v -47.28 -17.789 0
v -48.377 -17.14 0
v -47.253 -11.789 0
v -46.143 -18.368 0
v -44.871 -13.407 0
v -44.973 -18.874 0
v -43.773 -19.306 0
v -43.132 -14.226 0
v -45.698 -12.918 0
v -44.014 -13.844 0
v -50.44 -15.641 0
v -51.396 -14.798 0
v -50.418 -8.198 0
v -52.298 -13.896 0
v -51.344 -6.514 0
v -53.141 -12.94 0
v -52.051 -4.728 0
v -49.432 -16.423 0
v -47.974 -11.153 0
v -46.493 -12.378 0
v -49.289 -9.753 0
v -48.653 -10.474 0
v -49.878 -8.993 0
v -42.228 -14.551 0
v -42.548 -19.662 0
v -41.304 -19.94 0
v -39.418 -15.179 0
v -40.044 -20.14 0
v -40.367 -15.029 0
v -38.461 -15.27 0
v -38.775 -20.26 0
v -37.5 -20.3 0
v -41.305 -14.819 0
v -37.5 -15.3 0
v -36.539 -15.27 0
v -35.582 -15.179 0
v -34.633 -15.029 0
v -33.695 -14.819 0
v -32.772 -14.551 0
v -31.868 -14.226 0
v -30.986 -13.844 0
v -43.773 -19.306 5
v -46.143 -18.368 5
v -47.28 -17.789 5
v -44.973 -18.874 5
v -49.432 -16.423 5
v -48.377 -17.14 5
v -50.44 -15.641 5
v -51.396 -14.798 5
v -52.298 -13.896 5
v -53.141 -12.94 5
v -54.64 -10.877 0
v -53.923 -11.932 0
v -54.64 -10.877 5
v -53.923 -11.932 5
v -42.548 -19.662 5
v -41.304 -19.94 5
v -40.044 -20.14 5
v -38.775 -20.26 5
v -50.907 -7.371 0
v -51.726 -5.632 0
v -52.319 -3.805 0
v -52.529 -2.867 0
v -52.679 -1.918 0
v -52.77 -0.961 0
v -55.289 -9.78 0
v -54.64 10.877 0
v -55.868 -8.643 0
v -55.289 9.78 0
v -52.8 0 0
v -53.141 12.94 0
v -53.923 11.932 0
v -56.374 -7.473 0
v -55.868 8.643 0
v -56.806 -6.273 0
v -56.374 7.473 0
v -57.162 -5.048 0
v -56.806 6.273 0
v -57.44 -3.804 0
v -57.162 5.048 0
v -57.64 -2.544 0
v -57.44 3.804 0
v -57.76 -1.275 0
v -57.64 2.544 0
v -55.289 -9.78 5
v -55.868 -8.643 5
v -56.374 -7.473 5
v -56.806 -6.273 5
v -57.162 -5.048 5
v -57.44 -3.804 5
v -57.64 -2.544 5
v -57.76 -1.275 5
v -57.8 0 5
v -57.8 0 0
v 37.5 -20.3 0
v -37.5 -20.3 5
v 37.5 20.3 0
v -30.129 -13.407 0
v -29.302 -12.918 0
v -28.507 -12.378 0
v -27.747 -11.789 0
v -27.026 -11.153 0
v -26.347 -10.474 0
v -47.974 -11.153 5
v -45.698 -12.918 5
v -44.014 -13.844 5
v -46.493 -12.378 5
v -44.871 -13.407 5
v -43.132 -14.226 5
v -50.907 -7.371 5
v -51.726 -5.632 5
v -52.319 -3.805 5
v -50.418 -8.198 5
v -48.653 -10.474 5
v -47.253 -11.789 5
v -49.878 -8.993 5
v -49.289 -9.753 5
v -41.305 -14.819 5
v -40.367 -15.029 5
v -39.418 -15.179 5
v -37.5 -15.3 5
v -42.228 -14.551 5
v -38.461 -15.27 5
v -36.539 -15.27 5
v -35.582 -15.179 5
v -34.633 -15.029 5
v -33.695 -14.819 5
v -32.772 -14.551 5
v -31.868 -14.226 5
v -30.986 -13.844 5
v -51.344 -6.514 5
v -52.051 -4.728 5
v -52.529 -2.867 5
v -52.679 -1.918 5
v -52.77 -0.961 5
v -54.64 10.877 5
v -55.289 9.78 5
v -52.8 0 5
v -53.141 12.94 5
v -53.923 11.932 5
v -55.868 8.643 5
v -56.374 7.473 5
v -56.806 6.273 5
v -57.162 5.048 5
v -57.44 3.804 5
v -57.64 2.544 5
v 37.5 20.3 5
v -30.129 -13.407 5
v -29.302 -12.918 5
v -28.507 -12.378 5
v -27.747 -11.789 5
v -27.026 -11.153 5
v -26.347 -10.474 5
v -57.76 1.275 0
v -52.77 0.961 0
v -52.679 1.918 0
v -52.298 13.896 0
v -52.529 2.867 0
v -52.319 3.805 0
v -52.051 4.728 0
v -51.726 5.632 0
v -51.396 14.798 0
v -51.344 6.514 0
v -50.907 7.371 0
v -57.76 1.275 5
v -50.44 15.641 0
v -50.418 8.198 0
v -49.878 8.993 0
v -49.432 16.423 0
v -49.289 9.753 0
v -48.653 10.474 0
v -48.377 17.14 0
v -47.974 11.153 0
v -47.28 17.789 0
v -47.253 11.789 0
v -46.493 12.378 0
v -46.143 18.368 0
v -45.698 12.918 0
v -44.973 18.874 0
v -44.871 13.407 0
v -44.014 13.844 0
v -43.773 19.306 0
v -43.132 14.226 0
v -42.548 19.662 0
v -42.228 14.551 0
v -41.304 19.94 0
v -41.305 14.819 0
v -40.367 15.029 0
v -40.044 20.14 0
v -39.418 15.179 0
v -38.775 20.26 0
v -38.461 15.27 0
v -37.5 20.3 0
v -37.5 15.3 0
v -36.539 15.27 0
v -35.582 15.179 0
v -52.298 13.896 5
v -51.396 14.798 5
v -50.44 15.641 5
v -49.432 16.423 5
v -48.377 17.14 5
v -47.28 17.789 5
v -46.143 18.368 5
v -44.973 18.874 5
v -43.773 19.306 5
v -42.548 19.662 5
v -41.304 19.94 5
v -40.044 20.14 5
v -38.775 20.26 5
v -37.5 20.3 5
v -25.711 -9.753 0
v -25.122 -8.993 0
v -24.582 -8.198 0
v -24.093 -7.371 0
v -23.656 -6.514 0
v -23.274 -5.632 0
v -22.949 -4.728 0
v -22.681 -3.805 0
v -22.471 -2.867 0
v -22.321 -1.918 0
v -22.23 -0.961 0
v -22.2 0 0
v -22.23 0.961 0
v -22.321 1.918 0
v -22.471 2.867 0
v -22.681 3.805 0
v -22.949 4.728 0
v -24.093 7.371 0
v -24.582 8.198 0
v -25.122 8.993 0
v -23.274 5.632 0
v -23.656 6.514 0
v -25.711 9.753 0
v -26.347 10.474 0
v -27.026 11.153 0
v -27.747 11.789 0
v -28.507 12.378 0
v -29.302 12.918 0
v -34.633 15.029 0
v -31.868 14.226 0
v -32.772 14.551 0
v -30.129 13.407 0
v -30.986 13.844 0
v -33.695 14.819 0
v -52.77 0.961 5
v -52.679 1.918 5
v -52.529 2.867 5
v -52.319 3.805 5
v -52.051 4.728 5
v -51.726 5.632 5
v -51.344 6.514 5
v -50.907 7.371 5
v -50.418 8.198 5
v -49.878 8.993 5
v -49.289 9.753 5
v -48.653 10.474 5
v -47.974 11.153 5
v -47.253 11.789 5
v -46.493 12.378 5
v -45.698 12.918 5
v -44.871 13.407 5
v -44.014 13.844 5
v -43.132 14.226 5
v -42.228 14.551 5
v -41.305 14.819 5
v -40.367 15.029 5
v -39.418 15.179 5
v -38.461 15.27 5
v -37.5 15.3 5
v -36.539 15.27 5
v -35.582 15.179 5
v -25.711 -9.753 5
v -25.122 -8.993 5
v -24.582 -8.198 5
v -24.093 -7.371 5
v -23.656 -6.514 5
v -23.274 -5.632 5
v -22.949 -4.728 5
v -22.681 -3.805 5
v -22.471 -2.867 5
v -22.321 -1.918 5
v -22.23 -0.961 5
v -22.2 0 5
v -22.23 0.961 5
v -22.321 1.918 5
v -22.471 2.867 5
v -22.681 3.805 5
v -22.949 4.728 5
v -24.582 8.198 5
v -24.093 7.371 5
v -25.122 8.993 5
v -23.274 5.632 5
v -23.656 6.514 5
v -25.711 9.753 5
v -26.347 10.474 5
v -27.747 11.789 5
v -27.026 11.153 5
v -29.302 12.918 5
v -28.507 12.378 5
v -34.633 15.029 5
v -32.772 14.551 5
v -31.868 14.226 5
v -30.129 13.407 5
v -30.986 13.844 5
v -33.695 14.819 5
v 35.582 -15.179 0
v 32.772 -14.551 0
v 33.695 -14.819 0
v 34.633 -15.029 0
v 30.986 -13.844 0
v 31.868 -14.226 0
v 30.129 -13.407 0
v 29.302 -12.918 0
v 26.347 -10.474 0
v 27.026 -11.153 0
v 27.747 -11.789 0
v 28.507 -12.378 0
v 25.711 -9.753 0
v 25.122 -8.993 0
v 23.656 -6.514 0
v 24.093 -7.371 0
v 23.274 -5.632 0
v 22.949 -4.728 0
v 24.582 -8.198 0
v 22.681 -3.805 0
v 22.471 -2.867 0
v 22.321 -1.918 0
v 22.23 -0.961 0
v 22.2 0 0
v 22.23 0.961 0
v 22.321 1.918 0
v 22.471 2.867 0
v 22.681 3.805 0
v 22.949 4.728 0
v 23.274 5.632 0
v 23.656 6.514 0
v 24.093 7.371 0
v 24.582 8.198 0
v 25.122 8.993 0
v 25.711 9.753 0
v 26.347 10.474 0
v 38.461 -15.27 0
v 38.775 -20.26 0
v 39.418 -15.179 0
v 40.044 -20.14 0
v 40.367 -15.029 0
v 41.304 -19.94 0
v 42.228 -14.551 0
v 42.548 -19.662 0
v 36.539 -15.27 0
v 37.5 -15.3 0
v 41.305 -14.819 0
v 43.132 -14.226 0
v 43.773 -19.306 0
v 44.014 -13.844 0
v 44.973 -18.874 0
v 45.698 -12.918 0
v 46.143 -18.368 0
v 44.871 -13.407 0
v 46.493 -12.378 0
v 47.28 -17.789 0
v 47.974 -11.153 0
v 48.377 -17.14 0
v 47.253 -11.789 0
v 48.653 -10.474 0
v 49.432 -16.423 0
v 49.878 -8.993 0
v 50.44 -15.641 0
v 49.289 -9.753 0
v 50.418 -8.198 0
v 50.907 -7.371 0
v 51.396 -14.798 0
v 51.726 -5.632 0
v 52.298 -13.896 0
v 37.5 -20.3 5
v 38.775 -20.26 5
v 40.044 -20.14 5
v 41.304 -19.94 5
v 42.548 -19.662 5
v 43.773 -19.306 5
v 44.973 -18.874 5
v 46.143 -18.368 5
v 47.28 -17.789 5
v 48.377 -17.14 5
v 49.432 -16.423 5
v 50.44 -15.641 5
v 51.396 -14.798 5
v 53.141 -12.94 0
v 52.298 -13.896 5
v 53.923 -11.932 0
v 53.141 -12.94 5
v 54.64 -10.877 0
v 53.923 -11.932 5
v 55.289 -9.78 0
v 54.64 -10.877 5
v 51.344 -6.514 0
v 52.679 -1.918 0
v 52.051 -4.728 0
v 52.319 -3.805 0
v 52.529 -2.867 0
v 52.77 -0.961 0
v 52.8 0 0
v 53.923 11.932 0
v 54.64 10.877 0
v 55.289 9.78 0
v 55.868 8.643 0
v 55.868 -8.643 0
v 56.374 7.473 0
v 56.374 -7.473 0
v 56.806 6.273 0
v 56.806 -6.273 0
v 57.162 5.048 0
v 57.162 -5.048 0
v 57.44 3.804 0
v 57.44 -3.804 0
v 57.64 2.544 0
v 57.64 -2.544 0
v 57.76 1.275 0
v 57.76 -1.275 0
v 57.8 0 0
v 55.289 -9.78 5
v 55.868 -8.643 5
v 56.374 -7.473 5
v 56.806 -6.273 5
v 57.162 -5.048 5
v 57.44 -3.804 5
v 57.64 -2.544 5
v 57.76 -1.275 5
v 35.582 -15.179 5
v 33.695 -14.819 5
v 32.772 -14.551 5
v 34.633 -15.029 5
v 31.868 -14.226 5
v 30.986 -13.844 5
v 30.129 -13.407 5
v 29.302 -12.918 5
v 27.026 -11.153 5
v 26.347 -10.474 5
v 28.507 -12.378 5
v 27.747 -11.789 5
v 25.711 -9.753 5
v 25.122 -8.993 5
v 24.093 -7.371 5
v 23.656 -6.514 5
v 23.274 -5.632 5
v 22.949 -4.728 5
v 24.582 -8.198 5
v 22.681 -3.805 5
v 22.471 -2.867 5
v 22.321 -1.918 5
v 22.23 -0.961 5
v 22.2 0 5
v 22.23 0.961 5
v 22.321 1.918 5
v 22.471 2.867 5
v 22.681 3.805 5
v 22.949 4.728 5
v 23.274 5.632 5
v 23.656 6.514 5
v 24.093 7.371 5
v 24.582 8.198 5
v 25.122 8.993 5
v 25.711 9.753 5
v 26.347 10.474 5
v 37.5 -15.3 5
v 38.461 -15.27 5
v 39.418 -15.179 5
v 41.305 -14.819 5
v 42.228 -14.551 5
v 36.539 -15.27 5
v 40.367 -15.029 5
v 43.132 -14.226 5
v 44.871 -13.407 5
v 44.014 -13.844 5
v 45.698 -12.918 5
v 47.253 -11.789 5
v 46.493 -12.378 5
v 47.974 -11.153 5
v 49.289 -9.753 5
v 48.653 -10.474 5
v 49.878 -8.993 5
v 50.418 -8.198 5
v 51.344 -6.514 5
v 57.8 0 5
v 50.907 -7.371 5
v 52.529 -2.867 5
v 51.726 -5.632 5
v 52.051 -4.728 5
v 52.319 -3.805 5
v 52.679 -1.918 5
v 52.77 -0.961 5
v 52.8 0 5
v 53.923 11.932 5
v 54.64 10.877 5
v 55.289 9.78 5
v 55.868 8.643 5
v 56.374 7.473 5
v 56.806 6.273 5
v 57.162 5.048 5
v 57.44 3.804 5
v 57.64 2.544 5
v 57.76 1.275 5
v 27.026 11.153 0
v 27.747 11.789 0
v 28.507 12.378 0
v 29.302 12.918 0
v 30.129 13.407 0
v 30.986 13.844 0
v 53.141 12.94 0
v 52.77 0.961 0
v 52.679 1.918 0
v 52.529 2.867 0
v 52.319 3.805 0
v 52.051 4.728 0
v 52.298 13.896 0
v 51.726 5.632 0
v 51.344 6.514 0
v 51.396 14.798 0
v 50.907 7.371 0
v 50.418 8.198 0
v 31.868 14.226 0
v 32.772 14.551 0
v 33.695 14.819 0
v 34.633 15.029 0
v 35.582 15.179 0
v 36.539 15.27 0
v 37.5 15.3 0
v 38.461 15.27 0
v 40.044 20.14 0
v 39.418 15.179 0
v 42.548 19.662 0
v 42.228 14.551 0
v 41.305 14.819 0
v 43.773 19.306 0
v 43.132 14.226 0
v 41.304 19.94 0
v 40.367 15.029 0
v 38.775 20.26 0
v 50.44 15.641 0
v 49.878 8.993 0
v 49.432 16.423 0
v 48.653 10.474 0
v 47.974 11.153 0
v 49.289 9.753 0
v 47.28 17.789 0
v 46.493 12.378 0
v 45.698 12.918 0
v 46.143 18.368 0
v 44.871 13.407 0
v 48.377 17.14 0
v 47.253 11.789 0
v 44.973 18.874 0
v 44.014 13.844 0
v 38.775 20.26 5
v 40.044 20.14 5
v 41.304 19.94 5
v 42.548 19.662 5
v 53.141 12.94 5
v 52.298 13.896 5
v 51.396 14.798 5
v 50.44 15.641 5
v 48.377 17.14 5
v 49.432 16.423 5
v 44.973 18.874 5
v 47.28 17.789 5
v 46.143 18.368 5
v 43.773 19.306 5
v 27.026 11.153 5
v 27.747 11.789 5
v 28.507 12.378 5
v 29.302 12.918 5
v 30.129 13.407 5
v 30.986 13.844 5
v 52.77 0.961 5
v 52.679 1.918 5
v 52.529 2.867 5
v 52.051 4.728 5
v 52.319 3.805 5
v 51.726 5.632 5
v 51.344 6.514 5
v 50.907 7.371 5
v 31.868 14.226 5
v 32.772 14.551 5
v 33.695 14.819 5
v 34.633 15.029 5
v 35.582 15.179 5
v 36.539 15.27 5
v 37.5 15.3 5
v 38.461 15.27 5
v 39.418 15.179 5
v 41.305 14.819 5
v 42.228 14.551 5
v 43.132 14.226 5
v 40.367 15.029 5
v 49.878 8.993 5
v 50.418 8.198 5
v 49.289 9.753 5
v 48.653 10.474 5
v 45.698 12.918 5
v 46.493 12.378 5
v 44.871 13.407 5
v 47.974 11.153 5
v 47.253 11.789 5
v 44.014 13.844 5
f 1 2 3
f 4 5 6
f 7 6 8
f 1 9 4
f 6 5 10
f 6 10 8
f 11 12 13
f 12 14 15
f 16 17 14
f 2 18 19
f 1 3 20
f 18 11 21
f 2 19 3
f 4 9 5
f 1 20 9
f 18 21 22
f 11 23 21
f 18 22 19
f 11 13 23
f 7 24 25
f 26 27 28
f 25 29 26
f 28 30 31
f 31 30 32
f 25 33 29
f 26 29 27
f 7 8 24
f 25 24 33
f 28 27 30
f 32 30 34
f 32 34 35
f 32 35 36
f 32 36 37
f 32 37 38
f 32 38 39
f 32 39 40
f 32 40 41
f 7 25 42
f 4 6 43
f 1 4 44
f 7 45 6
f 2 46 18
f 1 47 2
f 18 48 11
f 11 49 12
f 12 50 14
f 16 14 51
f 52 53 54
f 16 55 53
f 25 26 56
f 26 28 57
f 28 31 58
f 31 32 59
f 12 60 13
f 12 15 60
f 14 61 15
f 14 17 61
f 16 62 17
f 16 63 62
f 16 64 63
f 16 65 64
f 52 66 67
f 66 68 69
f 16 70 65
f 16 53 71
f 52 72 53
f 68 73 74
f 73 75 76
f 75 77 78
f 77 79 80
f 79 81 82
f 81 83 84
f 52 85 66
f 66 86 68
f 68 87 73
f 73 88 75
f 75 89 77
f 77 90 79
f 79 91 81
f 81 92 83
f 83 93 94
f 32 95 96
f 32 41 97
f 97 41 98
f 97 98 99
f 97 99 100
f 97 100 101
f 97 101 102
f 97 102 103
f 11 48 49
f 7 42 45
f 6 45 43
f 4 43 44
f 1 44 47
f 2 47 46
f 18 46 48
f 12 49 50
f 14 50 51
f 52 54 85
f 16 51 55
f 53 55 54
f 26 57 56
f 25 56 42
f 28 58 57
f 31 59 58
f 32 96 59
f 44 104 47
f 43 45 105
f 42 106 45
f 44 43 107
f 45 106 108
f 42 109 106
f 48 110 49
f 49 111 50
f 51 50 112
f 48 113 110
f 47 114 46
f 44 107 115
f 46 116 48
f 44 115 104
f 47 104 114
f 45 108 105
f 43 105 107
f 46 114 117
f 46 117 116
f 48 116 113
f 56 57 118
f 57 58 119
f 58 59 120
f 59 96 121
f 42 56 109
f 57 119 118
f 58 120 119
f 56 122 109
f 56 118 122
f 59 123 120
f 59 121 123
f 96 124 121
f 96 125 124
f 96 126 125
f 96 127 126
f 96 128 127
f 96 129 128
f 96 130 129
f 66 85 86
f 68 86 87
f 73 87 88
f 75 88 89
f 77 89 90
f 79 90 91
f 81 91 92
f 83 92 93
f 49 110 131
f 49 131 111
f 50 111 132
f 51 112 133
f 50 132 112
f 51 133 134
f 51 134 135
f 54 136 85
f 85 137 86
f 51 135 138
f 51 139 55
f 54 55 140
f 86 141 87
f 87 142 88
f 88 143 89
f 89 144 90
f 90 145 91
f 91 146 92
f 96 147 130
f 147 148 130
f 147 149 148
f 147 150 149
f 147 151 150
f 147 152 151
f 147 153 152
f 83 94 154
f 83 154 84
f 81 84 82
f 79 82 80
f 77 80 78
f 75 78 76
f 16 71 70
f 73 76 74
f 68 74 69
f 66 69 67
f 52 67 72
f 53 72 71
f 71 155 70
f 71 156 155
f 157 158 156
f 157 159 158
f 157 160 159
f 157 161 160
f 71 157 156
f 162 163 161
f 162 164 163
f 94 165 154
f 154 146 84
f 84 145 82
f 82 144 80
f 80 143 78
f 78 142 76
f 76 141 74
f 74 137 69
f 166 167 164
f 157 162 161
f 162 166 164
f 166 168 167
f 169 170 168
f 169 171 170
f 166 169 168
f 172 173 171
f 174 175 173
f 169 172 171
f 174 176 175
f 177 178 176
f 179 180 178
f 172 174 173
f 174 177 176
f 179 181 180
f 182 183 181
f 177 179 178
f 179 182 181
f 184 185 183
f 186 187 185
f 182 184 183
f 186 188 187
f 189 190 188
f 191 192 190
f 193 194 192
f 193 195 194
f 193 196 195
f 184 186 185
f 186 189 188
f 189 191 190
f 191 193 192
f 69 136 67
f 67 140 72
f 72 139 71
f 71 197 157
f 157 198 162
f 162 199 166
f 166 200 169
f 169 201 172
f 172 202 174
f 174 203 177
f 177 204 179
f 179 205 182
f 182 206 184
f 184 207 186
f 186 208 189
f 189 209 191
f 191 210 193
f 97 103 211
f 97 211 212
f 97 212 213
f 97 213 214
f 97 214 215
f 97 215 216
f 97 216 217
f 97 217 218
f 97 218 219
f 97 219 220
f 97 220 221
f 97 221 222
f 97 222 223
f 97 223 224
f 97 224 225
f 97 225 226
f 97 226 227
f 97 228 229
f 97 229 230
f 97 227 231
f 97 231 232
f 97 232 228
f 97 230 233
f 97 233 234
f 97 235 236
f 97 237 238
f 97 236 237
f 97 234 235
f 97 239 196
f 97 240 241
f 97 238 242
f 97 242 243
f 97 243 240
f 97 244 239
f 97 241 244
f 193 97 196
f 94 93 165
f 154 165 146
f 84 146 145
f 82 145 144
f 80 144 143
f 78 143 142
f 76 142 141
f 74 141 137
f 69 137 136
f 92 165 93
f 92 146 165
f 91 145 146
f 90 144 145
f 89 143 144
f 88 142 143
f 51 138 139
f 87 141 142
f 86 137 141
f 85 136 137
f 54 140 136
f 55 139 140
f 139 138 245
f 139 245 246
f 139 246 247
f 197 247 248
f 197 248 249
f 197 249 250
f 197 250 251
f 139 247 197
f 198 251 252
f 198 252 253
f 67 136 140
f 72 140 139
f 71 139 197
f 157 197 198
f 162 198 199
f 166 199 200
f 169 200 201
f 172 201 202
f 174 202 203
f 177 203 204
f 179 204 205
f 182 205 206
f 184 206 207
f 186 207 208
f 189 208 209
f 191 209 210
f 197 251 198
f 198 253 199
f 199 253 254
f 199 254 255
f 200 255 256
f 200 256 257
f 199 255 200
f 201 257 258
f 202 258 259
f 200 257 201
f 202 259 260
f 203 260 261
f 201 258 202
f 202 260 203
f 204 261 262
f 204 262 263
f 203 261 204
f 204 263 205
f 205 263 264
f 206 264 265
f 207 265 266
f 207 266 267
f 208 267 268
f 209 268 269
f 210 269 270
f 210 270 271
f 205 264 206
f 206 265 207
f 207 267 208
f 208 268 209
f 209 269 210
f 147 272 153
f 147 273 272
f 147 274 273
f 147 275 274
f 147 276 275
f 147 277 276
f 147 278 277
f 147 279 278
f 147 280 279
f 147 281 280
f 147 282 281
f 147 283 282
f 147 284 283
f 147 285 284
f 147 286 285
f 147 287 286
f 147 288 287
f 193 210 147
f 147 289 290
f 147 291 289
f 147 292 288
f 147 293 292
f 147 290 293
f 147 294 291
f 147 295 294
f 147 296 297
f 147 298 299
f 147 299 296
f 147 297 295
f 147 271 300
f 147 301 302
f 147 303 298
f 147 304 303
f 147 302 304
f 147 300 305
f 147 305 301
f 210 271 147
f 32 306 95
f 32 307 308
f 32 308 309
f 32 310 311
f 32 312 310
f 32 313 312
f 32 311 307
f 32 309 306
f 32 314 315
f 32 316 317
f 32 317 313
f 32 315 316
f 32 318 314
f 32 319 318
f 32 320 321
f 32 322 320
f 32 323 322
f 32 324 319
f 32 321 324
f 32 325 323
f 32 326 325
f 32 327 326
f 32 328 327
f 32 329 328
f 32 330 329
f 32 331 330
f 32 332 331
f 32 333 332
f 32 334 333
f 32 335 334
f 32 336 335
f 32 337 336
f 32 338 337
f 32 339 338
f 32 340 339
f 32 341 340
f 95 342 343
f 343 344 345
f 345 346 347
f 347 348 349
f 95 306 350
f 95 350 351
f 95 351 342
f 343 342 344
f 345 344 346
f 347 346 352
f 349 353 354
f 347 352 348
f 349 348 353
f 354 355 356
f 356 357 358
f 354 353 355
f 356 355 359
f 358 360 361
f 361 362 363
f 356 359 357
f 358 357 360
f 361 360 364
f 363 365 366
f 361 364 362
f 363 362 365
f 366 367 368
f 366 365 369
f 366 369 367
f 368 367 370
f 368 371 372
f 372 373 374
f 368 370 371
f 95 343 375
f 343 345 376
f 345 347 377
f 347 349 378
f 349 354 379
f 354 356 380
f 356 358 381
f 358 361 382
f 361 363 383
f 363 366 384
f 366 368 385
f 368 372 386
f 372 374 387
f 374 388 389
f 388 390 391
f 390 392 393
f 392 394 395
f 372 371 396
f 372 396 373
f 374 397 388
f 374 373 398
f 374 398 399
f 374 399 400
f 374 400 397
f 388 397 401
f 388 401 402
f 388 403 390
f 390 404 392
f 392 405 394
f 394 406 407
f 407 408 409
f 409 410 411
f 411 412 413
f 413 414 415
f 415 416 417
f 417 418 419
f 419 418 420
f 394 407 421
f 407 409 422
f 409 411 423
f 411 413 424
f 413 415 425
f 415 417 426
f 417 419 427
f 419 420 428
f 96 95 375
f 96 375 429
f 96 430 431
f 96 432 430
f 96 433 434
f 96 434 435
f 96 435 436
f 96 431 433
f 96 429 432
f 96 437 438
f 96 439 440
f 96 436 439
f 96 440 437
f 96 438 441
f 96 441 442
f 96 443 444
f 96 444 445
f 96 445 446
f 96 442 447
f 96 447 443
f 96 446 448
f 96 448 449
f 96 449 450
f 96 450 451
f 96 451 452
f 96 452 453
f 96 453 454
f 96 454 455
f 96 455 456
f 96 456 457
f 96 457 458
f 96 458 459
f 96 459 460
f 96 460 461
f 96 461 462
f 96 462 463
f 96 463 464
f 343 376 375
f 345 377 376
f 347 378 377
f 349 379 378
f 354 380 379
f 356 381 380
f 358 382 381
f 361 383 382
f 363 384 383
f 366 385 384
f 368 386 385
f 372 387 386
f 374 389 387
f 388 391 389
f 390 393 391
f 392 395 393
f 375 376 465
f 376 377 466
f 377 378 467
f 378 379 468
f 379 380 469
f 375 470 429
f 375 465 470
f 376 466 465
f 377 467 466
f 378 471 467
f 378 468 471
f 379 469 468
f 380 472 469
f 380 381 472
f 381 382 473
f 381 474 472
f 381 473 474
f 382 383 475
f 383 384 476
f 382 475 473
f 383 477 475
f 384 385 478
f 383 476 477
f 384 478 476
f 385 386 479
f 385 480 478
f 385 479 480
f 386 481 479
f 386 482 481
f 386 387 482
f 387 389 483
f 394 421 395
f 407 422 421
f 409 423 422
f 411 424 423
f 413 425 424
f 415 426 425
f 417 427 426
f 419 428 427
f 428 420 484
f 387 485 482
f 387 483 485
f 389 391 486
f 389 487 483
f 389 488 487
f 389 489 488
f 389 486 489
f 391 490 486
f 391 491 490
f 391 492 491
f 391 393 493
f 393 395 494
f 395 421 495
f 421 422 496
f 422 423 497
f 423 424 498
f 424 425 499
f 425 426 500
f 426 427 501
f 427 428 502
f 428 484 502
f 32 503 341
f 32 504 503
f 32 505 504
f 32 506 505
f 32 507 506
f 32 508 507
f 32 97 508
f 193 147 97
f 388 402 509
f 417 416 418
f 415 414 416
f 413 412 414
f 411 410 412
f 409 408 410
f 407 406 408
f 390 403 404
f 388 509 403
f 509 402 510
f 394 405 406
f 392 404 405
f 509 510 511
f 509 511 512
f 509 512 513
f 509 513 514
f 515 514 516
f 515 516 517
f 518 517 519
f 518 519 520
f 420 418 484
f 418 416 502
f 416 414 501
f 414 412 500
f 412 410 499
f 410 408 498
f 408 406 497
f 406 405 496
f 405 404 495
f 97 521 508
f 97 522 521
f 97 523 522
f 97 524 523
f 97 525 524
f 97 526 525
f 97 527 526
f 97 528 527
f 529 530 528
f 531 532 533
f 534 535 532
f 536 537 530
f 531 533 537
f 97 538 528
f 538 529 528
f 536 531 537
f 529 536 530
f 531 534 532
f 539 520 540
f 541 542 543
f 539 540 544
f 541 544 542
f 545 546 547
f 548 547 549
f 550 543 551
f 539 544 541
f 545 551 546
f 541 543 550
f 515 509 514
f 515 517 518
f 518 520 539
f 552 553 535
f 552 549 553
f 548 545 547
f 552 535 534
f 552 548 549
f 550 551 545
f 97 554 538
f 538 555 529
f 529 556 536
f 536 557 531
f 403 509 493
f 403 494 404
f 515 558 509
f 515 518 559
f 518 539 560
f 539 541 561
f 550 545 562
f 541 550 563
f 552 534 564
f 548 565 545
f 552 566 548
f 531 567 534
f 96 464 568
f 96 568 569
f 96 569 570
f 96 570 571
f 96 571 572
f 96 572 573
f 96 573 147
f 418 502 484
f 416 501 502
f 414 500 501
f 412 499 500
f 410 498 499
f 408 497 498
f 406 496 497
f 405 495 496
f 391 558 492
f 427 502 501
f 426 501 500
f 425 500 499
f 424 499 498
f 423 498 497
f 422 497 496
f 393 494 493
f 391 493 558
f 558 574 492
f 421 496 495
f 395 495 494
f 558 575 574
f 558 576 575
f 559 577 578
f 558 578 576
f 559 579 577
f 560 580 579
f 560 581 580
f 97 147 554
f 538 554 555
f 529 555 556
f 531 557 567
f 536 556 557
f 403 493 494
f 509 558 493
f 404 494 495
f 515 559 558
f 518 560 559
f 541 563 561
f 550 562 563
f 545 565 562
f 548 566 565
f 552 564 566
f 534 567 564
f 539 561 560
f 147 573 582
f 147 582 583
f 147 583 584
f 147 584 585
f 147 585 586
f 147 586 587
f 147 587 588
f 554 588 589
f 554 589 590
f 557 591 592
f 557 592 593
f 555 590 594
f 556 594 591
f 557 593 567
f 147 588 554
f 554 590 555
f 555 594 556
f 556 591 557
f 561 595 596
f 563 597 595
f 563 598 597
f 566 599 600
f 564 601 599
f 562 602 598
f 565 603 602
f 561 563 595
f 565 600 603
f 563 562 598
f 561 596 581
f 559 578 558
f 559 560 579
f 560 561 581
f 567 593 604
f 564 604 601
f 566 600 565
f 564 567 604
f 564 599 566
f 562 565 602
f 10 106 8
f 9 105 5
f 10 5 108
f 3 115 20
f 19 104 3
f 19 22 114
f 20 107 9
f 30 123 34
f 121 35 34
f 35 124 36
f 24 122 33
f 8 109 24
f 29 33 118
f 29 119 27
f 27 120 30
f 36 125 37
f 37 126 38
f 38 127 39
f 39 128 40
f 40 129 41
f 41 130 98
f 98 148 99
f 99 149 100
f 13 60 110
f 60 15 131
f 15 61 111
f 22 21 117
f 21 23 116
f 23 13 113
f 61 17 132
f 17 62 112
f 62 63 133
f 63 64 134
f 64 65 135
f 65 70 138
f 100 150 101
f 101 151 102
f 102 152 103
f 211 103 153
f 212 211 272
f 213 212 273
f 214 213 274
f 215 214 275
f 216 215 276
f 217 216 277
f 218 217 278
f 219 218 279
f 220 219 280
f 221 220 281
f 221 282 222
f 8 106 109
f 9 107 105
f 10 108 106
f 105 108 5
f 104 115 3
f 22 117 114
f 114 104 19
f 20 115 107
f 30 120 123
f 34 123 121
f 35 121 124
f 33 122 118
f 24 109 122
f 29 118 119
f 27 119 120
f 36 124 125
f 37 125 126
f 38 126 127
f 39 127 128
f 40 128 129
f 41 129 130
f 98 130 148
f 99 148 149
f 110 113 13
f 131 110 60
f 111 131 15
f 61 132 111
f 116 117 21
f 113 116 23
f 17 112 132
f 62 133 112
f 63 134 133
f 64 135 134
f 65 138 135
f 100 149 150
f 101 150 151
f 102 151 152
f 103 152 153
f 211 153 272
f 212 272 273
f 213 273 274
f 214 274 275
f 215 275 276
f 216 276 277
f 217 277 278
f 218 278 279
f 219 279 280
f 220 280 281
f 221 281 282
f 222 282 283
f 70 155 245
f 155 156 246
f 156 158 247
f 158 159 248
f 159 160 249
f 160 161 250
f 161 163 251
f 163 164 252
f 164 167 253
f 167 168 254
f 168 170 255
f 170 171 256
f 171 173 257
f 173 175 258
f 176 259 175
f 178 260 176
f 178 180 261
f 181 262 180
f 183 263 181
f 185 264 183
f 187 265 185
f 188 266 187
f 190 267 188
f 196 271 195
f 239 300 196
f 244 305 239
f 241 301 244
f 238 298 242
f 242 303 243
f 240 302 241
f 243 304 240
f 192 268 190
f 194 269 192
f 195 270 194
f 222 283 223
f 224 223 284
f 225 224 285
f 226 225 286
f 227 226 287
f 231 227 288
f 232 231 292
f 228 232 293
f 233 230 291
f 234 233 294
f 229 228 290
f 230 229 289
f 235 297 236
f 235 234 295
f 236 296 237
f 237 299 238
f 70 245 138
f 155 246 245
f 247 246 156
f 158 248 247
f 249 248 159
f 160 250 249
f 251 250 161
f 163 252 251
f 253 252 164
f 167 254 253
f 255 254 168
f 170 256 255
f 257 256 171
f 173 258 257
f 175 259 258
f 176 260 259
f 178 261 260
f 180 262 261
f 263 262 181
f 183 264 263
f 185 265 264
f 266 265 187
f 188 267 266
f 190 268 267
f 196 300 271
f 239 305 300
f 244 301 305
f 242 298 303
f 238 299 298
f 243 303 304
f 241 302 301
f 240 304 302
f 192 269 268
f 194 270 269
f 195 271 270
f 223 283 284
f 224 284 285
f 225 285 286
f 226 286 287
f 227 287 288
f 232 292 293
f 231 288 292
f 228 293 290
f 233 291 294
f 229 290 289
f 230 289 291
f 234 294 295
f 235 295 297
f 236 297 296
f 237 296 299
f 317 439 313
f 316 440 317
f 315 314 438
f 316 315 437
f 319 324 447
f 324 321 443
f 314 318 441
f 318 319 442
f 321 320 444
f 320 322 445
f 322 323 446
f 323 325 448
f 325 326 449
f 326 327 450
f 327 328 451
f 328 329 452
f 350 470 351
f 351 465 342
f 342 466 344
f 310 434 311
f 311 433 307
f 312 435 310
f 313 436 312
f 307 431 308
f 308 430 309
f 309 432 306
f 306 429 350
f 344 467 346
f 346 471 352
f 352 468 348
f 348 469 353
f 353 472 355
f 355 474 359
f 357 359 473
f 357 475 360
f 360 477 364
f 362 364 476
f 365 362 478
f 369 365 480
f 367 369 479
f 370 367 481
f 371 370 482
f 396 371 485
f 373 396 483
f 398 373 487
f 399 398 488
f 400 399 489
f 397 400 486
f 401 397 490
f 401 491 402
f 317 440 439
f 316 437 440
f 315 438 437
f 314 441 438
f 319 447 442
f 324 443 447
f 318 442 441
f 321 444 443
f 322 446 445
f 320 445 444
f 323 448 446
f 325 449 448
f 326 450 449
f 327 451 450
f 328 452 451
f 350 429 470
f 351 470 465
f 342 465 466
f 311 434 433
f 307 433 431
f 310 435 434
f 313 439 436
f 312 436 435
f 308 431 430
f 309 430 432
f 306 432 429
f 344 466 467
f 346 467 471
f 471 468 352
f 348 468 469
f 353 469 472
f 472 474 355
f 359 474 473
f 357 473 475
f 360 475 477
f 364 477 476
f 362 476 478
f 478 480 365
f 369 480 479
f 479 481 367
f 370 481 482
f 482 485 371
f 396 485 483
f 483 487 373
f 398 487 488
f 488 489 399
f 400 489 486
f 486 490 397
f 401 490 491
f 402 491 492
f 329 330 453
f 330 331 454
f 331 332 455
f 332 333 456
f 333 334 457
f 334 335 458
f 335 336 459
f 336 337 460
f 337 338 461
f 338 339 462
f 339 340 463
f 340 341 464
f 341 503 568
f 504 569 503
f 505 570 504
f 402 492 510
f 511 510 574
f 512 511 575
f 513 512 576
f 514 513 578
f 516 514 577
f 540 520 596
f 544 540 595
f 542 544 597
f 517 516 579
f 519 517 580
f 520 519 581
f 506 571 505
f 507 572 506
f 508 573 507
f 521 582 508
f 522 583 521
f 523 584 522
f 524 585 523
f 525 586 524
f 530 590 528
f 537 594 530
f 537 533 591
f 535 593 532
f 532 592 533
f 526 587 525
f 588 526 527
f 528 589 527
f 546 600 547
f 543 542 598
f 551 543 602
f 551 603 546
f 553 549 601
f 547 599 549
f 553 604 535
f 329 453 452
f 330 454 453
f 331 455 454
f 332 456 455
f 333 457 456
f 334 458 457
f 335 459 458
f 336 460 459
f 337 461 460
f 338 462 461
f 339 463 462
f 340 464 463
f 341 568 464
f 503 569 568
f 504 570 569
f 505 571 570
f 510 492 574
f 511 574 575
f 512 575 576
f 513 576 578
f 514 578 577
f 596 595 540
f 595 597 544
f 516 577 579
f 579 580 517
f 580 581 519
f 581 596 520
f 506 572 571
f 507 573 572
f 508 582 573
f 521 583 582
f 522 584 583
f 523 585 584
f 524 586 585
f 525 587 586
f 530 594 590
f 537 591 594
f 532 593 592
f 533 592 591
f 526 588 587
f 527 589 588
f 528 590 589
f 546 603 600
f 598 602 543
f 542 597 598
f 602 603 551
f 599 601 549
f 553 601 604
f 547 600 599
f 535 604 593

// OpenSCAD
// ============================================================
// Turn-N-Tube shelf coupler — rigid lozenge collar
// Connects two adjacent shelf units at one tube height.
// Replaces zip ties: a lozenge collar slips over both vertical
// tube posts and holds them at a fixed spacing.
//
// The coupler DEFINES the spacing — it does not have to fit
// the units as they currently sit. Set the gap you want and
// the hole spacing follows from the tube and the tube-to-edge
// run on each unit. Nothing here depends on how far apart the
// units happen to be today.
//
// A deliberate gap is worth having: adjacent units rarely have
// their shelves at the same height, and the gap keeps that
// mismatch from reading as a misalignment.
//
// There is deliberately no gap-filling wall. An earlier version
// hung one below the collar to stiffen the pair and it did
// nothing: couplers are pinned at both ends by a round tube in
// a round hole, and every one of them runs the same direction,
// so the pair keeps a degree of freedom to shear sideways
// however many are fitted. A wall can only fight that with
// friction, and it lost. Printing it back would buy nothing —
// shelf_tube_brace.scad is the diagonal link that removes the
// freedom itself.
//
// PRINT NOTES:
// - PETG, no supports needed — a flat plate with round holes.
// - Print with the collar axis vertical (as modeled) so the
//   holes print round and the tube slides through cleanly.
// - Rests on the shelf below. Two per shelf level (front and
//   back post pair), 8 total for a 5-tier unit — the top shelf
//   has no tube above it.
// - These hold the spacing, not the squareness. Add one
//   shelf_tube_brace per pair of units.
// ============================================================

// ===== MEASURE THESE ON YOUR ACTUAL SHELVES =====
// Both are outside-the-solid measurements, so plain calipers reach them

tube_od = 30; // Outer diameter of the vertical tube post (mm) — outside jaws on the tube

// Tube's outer surface out to the facing edge of its own shelf (mm).
// Measured on the side that faces the other unit. Eyeball it if the calipers
// won't reach — error here just shifts the gap you end up with by the same
// amount, it never stops the part going onto the tubes
tube_to_edge = 20;

// Override these only if the two units differ — a shelf that overhangs
// further on one side, or a post that isn't set the same distance in
left_tube_to_edge = tube_to_edge;
right_tube_to_edge = tube_to_edge;

// ===== DECIDE THIS =====
// Gap you want between the two units' facing shelf edges (mm).
// This is a choice, not a measurement — the coupler holds the units here.
// Some gap hides shelf-height mismatch between the units
shelf_gap = 5;

// ===== TUNE THESE =====
hole_clearance = 0.6; // Added to hole diameter for slip fit (mm) — increase if too tight
wall_meat = 5; // PETG thickness around each hole (mm)
collar_height = 5; // Height of the main collar at the shelf level (mm)

$fn = 100;

// ===== DERIVED =====
// Tube centre to tube centre: half a tube, the run out to each shelf
// edge, and the gap between those edges
center_distance = tube_od + left_tube_to_edge + shelf_gap + right_tube_to_edge;

hole_r = tube_od / 2 + hole_clearance / 2;
collar_r = hole_r + wall_meat;

// Narrowest material across the waist, between the two holes. The collar is
// only as strong as this, and it is what a very small shelf_gap eats into
waist = center_distance - 2 * hole_r;

echo(str("center-to-center hole spacing = ", center_distance, " mm"));
echo(str("overall length = ", center_distance + 2 * collar_r, " mm"));
echo(str("waist between the holes = ", waist, " mm"));

assert(waist > 0, "the two holes have run together — shelf_gap plus the tube-to-edge runs has to beat hole_clearance");

// 2D lozenge (stadium) shape: hull of two circles
module lozenge_2d(r, cdist) {
  hull() {
    translate([-cdist / 2, 0])
      circle(r = r);
    translate([cdist / 2, 0])
      circle(r = r);
  }
}

module coupler() {
  difference() {
    linear_extrude(height = collar_height)
      lozenge_2d(collar_r, center_distance);

    // Through-holes for the two tube posts
    translate([-center_distance / 2, 0, -1])
      cylinder(r = hole_r, h = collar_height + 2);
    translate([center_distance / 2, 0, -1])
      cylinder(r = hole_r, h = collar_height + 2);
  }
}

coupler();
